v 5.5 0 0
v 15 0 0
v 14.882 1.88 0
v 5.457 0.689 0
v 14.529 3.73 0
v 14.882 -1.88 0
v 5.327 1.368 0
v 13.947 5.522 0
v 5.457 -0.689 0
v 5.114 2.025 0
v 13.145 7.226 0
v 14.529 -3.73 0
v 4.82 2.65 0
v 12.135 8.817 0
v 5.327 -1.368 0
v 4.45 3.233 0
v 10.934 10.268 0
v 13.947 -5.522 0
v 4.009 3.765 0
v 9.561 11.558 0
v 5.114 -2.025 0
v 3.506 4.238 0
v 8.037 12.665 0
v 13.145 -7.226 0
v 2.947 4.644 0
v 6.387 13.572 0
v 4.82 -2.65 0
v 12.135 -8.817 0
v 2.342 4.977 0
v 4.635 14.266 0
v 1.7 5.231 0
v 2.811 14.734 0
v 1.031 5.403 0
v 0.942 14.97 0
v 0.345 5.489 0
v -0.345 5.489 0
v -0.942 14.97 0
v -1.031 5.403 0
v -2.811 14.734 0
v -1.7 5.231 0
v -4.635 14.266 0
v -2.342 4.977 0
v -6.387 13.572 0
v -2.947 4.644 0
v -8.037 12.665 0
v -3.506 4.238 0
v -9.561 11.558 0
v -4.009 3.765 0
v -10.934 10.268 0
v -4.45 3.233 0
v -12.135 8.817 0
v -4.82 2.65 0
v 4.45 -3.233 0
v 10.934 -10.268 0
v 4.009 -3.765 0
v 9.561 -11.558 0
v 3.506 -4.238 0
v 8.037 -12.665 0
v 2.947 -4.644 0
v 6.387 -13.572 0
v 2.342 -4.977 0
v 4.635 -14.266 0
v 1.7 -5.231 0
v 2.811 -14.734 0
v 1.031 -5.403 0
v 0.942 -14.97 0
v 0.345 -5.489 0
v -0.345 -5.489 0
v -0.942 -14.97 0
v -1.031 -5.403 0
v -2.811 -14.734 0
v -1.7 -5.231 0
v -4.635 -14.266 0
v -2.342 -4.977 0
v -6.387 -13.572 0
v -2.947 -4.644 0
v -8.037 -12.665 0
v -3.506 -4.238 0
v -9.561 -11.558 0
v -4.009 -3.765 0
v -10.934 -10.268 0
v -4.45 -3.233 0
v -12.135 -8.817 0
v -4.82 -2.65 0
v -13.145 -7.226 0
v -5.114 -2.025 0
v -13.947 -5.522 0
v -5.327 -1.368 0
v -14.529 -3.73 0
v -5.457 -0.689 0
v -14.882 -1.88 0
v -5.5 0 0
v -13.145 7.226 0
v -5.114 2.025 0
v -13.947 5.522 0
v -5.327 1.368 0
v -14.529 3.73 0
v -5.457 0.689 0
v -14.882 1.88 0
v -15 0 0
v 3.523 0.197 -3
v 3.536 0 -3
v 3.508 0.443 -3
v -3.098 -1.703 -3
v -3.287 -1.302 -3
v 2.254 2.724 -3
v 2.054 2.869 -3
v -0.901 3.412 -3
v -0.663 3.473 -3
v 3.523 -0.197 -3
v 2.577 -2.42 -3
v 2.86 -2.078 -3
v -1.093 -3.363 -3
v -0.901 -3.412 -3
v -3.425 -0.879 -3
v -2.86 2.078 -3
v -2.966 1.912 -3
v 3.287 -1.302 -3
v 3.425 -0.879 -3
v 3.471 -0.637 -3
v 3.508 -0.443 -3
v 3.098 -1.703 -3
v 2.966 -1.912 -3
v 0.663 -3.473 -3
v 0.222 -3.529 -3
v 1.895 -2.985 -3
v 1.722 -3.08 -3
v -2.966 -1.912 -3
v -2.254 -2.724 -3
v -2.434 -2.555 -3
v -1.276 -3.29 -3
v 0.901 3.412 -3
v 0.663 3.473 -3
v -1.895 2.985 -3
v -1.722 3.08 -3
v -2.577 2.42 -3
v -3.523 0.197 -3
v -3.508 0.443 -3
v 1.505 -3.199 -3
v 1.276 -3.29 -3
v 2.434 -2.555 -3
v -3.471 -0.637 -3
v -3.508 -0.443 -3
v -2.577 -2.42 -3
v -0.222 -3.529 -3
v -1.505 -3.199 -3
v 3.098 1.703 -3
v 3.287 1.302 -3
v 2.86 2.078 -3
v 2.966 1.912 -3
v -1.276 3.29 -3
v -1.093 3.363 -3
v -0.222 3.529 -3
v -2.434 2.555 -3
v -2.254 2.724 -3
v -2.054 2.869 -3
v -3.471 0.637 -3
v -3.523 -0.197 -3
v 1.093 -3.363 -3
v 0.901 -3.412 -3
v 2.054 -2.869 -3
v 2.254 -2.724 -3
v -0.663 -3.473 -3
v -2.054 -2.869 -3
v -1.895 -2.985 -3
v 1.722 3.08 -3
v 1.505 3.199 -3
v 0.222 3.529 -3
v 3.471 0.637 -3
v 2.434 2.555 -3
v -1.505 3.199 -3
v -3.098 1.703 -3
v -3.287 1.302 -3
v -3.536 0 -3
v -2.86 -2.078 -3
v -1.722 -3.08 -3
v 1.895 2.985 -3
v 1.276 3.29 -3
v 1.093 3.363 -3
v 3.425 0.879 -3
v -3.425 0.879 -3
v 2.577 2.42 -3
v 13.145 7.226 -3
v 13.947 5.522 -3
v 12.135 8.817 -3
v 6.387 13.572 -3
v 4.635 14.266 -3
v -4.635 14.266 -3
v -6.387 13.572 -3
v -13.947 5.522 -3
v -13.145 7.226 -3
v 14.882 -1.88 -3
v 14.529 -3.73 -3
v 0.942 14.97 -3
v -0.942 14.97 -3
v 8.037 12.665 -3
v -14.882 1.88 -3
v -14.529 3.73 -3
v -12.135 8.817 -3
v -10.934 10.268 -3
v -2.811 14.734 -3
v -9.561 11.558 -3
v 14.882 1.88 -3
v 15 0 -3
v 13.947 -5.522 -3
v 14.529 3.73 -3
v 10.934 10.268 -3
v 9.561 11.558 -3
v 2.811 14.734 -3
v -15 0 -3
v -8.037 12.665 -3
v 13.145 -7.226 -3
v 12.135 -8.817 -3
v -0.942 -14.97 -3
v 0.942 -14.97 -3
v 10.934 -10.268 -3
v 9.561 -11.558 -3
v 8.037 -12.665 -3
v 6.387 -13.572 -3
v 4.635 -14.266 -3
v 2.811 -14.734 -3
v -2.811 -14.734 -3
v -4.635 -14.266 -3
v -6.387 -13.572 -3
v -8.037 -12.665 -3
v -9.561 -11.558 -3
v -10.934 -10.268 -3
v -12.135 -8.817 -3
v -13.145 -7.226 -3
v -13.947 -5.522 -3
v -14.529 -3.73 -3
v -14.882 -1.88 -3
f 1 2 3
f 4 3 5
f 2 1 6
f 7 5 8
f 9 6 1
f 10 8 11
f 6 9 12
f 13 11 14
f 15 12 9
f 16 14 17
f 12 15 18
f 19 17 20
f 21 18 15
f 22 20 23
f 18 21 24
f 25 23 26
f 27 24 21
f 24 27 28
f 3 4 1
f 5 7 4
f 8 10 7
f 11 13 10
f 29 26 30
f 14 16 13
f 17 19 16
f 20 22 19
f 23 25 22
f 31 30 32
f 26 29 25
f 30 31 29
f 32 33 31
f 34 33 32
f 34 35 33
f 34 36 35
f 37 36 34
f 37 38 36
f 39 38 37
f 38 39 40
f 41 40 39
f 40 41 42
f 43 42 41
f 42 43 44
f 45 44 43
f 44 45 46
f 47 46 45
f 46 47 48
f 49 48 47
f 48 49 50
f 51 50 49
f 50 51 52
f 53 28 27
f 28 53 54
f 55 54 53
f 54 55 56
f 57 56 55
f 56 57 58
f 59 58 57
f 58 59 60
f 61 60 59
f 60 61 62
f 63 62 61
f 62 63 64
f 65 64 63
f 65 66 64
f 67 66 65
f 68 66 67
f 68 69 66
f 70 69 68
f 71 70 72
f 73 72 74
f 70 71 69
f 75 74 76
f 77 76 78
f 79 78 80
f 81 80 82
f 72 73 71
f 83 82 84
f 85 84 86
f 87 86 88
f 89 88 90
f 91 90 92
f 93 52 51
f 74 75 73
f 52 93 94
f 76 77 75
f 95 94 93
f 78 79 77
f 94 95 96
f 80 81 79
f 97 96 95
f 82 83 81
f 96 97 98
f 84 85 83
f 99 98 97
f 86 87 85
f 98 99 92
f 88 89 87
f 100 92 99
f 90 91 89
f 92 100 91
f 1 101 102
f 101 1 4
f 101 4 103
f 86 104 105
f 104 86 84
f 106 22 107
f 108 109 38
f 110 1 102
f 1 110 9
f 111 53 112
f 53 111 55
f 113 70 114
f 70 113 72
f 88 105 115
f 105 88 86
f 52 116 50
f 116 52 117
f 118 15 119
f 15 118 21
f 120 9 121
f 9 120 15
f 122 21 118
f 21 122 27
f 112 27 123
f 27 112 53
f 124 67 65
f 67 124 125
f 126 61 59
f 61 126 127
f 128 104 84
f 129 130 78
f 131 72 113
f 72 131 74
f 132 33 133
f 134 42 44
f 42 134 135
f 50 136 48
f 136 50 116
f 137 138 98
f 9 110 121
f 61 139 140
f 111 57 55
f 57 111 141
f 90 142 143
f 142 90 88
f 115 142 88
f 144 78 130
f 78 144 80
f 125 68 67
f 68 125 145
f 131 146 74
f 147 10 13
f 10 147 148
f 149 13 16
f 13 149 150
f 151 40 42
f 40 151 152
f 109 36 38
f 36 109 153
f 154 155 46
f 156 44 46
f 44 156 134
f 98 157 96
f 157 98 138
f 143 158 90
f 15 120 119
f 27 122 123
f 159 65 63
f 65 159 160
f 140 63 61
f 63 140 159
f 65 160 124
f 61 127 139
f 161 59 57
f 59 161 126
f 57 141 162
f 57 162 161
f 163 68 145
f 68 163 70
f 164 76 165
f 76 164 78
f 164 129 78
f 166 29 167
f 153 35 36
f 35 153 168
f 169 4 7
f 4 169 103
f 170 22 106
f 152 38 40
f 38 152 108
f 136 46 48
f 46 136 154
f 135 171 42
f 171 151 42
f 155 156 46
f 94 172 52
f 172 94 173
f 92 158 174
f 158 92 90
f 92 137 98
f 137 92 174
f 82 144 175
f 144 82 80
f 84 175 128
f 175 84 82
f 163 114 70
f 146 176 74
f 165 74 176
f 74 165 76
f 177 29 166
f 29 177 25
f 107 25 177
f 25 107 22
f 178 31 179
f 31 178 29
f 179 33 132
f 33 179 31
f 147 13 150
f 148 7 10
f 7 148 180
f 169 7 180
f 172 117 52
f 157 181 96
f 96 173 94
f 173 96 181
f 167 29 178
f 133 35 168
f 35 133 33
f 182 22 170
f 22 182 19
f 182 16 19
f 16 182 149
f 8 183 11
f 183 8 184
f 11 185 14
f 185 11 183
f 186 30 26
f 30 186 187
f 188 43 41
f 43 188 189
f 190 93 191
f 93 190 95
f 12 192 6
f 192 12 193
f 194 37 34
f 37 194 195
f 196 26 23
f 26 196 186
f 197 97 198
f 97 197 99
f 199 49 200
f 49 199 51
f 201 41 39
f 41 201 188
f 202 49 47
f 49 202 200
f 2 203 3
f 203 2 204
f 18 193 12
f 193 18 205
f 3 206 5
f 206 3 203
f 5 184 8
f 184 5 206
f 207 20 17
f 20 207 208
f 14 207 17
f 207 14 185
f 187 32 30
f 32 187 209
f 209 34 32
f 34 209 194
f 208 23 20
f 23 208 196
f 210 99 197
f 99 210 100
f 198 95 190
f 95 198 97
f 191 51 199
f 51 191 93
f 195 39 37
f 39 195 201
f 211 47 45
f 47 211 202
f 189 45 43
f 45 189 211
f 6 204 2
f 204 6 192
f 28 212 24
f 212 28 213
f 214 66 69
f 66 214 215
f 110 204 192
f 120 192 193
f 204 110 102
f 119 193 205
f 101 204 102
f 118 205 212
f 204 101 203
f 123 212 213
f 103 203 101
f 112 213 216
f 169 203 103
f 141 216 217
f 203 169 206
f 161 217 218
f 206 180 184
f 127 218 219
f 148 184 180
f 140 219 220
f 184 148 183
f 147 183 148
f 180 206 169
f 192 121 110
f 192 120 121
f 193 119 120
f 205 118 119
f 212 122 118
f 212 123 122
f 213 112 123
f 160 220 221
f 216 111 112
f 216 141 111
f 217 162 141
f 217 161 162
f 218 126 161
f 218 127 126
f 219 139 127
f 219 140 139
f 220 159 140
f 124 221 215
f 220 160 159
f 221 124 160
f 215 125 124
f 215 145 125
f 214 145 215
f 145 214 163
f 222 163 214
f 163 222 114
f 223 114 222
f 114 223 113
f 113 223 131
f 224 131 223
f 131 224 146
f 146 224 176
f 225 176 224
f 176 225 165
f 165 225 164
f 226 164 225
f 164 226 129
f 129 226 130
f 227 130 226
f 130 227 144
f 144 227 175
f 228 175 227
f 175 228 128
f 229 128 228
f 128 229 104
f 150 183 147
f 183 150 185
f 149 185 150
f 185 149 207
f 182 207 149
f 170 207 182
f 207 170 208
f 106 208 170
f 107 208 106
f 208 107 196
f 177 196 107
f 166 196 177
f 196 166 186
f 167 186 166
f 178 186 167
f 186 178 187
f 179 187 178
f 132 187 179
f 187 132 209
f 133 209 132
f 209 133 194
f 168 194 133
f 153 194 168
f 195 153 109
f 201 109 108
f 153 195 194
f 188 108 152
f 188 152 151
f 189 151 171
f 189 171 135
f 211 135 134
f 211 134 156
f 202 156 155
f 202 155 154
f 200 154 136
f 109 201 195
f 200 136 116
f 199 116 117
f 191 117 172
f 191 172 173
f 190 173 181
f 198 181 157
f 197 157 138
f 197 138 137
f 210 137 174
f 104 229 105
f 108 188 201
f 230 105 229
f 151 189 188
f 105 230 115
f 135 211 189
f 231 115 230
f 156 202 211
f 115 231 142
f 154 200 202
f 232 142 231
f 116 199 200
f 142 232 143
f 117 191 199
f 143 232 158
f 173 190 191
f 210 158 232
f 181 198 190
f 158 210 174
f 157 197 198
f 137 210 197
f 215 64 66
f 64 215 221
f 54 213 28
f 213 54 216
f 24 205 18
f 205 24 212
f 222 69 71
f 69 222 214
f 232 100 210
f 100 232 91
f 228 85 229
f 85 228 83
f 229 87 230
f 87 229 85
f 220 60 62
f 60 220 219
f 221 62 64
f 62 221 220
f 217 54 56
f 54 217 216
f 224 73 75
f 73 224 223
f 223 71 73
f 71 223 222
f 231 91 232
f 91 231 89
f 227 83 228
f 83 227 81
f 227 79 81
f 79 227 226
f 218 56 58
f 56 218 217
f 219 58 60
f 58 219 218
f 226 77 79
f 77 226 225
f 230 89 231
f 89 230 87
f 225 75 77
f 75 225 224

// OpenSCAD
$fn = 50;


difference() {
	union() {
		translate(v = [0, 0, -3.0000000000]) {
			cylinder(h = 3, r = 15.0000000000);
		}
	}
	union() {
		translate(v = [0, 0, 0]) {
			rotate(a = [0, 0, 0]) {
				difference() {
					union() {
						translate(v = [0, 0, -6.0000000000]) {
							cylinder(h = 6, r = 2.2500000000);
						}
						translate(v = [0, 0, -4.2000000000]) {
							cylinder(h = 4.2000000000, r1 = 2.7500000000, r2 = 5.5000000000);
						}
						translate(v = [0, 0, -6.0000000000]) {
							cylinder(h = 6, r = 2.7500000000);
						}
						translate(v = [0, 0, -6.0000000000]) {
							cylinder(h = 6, r = 2.2500000000);
						}
					}
					union();
				}
			}
		}
	}
}
